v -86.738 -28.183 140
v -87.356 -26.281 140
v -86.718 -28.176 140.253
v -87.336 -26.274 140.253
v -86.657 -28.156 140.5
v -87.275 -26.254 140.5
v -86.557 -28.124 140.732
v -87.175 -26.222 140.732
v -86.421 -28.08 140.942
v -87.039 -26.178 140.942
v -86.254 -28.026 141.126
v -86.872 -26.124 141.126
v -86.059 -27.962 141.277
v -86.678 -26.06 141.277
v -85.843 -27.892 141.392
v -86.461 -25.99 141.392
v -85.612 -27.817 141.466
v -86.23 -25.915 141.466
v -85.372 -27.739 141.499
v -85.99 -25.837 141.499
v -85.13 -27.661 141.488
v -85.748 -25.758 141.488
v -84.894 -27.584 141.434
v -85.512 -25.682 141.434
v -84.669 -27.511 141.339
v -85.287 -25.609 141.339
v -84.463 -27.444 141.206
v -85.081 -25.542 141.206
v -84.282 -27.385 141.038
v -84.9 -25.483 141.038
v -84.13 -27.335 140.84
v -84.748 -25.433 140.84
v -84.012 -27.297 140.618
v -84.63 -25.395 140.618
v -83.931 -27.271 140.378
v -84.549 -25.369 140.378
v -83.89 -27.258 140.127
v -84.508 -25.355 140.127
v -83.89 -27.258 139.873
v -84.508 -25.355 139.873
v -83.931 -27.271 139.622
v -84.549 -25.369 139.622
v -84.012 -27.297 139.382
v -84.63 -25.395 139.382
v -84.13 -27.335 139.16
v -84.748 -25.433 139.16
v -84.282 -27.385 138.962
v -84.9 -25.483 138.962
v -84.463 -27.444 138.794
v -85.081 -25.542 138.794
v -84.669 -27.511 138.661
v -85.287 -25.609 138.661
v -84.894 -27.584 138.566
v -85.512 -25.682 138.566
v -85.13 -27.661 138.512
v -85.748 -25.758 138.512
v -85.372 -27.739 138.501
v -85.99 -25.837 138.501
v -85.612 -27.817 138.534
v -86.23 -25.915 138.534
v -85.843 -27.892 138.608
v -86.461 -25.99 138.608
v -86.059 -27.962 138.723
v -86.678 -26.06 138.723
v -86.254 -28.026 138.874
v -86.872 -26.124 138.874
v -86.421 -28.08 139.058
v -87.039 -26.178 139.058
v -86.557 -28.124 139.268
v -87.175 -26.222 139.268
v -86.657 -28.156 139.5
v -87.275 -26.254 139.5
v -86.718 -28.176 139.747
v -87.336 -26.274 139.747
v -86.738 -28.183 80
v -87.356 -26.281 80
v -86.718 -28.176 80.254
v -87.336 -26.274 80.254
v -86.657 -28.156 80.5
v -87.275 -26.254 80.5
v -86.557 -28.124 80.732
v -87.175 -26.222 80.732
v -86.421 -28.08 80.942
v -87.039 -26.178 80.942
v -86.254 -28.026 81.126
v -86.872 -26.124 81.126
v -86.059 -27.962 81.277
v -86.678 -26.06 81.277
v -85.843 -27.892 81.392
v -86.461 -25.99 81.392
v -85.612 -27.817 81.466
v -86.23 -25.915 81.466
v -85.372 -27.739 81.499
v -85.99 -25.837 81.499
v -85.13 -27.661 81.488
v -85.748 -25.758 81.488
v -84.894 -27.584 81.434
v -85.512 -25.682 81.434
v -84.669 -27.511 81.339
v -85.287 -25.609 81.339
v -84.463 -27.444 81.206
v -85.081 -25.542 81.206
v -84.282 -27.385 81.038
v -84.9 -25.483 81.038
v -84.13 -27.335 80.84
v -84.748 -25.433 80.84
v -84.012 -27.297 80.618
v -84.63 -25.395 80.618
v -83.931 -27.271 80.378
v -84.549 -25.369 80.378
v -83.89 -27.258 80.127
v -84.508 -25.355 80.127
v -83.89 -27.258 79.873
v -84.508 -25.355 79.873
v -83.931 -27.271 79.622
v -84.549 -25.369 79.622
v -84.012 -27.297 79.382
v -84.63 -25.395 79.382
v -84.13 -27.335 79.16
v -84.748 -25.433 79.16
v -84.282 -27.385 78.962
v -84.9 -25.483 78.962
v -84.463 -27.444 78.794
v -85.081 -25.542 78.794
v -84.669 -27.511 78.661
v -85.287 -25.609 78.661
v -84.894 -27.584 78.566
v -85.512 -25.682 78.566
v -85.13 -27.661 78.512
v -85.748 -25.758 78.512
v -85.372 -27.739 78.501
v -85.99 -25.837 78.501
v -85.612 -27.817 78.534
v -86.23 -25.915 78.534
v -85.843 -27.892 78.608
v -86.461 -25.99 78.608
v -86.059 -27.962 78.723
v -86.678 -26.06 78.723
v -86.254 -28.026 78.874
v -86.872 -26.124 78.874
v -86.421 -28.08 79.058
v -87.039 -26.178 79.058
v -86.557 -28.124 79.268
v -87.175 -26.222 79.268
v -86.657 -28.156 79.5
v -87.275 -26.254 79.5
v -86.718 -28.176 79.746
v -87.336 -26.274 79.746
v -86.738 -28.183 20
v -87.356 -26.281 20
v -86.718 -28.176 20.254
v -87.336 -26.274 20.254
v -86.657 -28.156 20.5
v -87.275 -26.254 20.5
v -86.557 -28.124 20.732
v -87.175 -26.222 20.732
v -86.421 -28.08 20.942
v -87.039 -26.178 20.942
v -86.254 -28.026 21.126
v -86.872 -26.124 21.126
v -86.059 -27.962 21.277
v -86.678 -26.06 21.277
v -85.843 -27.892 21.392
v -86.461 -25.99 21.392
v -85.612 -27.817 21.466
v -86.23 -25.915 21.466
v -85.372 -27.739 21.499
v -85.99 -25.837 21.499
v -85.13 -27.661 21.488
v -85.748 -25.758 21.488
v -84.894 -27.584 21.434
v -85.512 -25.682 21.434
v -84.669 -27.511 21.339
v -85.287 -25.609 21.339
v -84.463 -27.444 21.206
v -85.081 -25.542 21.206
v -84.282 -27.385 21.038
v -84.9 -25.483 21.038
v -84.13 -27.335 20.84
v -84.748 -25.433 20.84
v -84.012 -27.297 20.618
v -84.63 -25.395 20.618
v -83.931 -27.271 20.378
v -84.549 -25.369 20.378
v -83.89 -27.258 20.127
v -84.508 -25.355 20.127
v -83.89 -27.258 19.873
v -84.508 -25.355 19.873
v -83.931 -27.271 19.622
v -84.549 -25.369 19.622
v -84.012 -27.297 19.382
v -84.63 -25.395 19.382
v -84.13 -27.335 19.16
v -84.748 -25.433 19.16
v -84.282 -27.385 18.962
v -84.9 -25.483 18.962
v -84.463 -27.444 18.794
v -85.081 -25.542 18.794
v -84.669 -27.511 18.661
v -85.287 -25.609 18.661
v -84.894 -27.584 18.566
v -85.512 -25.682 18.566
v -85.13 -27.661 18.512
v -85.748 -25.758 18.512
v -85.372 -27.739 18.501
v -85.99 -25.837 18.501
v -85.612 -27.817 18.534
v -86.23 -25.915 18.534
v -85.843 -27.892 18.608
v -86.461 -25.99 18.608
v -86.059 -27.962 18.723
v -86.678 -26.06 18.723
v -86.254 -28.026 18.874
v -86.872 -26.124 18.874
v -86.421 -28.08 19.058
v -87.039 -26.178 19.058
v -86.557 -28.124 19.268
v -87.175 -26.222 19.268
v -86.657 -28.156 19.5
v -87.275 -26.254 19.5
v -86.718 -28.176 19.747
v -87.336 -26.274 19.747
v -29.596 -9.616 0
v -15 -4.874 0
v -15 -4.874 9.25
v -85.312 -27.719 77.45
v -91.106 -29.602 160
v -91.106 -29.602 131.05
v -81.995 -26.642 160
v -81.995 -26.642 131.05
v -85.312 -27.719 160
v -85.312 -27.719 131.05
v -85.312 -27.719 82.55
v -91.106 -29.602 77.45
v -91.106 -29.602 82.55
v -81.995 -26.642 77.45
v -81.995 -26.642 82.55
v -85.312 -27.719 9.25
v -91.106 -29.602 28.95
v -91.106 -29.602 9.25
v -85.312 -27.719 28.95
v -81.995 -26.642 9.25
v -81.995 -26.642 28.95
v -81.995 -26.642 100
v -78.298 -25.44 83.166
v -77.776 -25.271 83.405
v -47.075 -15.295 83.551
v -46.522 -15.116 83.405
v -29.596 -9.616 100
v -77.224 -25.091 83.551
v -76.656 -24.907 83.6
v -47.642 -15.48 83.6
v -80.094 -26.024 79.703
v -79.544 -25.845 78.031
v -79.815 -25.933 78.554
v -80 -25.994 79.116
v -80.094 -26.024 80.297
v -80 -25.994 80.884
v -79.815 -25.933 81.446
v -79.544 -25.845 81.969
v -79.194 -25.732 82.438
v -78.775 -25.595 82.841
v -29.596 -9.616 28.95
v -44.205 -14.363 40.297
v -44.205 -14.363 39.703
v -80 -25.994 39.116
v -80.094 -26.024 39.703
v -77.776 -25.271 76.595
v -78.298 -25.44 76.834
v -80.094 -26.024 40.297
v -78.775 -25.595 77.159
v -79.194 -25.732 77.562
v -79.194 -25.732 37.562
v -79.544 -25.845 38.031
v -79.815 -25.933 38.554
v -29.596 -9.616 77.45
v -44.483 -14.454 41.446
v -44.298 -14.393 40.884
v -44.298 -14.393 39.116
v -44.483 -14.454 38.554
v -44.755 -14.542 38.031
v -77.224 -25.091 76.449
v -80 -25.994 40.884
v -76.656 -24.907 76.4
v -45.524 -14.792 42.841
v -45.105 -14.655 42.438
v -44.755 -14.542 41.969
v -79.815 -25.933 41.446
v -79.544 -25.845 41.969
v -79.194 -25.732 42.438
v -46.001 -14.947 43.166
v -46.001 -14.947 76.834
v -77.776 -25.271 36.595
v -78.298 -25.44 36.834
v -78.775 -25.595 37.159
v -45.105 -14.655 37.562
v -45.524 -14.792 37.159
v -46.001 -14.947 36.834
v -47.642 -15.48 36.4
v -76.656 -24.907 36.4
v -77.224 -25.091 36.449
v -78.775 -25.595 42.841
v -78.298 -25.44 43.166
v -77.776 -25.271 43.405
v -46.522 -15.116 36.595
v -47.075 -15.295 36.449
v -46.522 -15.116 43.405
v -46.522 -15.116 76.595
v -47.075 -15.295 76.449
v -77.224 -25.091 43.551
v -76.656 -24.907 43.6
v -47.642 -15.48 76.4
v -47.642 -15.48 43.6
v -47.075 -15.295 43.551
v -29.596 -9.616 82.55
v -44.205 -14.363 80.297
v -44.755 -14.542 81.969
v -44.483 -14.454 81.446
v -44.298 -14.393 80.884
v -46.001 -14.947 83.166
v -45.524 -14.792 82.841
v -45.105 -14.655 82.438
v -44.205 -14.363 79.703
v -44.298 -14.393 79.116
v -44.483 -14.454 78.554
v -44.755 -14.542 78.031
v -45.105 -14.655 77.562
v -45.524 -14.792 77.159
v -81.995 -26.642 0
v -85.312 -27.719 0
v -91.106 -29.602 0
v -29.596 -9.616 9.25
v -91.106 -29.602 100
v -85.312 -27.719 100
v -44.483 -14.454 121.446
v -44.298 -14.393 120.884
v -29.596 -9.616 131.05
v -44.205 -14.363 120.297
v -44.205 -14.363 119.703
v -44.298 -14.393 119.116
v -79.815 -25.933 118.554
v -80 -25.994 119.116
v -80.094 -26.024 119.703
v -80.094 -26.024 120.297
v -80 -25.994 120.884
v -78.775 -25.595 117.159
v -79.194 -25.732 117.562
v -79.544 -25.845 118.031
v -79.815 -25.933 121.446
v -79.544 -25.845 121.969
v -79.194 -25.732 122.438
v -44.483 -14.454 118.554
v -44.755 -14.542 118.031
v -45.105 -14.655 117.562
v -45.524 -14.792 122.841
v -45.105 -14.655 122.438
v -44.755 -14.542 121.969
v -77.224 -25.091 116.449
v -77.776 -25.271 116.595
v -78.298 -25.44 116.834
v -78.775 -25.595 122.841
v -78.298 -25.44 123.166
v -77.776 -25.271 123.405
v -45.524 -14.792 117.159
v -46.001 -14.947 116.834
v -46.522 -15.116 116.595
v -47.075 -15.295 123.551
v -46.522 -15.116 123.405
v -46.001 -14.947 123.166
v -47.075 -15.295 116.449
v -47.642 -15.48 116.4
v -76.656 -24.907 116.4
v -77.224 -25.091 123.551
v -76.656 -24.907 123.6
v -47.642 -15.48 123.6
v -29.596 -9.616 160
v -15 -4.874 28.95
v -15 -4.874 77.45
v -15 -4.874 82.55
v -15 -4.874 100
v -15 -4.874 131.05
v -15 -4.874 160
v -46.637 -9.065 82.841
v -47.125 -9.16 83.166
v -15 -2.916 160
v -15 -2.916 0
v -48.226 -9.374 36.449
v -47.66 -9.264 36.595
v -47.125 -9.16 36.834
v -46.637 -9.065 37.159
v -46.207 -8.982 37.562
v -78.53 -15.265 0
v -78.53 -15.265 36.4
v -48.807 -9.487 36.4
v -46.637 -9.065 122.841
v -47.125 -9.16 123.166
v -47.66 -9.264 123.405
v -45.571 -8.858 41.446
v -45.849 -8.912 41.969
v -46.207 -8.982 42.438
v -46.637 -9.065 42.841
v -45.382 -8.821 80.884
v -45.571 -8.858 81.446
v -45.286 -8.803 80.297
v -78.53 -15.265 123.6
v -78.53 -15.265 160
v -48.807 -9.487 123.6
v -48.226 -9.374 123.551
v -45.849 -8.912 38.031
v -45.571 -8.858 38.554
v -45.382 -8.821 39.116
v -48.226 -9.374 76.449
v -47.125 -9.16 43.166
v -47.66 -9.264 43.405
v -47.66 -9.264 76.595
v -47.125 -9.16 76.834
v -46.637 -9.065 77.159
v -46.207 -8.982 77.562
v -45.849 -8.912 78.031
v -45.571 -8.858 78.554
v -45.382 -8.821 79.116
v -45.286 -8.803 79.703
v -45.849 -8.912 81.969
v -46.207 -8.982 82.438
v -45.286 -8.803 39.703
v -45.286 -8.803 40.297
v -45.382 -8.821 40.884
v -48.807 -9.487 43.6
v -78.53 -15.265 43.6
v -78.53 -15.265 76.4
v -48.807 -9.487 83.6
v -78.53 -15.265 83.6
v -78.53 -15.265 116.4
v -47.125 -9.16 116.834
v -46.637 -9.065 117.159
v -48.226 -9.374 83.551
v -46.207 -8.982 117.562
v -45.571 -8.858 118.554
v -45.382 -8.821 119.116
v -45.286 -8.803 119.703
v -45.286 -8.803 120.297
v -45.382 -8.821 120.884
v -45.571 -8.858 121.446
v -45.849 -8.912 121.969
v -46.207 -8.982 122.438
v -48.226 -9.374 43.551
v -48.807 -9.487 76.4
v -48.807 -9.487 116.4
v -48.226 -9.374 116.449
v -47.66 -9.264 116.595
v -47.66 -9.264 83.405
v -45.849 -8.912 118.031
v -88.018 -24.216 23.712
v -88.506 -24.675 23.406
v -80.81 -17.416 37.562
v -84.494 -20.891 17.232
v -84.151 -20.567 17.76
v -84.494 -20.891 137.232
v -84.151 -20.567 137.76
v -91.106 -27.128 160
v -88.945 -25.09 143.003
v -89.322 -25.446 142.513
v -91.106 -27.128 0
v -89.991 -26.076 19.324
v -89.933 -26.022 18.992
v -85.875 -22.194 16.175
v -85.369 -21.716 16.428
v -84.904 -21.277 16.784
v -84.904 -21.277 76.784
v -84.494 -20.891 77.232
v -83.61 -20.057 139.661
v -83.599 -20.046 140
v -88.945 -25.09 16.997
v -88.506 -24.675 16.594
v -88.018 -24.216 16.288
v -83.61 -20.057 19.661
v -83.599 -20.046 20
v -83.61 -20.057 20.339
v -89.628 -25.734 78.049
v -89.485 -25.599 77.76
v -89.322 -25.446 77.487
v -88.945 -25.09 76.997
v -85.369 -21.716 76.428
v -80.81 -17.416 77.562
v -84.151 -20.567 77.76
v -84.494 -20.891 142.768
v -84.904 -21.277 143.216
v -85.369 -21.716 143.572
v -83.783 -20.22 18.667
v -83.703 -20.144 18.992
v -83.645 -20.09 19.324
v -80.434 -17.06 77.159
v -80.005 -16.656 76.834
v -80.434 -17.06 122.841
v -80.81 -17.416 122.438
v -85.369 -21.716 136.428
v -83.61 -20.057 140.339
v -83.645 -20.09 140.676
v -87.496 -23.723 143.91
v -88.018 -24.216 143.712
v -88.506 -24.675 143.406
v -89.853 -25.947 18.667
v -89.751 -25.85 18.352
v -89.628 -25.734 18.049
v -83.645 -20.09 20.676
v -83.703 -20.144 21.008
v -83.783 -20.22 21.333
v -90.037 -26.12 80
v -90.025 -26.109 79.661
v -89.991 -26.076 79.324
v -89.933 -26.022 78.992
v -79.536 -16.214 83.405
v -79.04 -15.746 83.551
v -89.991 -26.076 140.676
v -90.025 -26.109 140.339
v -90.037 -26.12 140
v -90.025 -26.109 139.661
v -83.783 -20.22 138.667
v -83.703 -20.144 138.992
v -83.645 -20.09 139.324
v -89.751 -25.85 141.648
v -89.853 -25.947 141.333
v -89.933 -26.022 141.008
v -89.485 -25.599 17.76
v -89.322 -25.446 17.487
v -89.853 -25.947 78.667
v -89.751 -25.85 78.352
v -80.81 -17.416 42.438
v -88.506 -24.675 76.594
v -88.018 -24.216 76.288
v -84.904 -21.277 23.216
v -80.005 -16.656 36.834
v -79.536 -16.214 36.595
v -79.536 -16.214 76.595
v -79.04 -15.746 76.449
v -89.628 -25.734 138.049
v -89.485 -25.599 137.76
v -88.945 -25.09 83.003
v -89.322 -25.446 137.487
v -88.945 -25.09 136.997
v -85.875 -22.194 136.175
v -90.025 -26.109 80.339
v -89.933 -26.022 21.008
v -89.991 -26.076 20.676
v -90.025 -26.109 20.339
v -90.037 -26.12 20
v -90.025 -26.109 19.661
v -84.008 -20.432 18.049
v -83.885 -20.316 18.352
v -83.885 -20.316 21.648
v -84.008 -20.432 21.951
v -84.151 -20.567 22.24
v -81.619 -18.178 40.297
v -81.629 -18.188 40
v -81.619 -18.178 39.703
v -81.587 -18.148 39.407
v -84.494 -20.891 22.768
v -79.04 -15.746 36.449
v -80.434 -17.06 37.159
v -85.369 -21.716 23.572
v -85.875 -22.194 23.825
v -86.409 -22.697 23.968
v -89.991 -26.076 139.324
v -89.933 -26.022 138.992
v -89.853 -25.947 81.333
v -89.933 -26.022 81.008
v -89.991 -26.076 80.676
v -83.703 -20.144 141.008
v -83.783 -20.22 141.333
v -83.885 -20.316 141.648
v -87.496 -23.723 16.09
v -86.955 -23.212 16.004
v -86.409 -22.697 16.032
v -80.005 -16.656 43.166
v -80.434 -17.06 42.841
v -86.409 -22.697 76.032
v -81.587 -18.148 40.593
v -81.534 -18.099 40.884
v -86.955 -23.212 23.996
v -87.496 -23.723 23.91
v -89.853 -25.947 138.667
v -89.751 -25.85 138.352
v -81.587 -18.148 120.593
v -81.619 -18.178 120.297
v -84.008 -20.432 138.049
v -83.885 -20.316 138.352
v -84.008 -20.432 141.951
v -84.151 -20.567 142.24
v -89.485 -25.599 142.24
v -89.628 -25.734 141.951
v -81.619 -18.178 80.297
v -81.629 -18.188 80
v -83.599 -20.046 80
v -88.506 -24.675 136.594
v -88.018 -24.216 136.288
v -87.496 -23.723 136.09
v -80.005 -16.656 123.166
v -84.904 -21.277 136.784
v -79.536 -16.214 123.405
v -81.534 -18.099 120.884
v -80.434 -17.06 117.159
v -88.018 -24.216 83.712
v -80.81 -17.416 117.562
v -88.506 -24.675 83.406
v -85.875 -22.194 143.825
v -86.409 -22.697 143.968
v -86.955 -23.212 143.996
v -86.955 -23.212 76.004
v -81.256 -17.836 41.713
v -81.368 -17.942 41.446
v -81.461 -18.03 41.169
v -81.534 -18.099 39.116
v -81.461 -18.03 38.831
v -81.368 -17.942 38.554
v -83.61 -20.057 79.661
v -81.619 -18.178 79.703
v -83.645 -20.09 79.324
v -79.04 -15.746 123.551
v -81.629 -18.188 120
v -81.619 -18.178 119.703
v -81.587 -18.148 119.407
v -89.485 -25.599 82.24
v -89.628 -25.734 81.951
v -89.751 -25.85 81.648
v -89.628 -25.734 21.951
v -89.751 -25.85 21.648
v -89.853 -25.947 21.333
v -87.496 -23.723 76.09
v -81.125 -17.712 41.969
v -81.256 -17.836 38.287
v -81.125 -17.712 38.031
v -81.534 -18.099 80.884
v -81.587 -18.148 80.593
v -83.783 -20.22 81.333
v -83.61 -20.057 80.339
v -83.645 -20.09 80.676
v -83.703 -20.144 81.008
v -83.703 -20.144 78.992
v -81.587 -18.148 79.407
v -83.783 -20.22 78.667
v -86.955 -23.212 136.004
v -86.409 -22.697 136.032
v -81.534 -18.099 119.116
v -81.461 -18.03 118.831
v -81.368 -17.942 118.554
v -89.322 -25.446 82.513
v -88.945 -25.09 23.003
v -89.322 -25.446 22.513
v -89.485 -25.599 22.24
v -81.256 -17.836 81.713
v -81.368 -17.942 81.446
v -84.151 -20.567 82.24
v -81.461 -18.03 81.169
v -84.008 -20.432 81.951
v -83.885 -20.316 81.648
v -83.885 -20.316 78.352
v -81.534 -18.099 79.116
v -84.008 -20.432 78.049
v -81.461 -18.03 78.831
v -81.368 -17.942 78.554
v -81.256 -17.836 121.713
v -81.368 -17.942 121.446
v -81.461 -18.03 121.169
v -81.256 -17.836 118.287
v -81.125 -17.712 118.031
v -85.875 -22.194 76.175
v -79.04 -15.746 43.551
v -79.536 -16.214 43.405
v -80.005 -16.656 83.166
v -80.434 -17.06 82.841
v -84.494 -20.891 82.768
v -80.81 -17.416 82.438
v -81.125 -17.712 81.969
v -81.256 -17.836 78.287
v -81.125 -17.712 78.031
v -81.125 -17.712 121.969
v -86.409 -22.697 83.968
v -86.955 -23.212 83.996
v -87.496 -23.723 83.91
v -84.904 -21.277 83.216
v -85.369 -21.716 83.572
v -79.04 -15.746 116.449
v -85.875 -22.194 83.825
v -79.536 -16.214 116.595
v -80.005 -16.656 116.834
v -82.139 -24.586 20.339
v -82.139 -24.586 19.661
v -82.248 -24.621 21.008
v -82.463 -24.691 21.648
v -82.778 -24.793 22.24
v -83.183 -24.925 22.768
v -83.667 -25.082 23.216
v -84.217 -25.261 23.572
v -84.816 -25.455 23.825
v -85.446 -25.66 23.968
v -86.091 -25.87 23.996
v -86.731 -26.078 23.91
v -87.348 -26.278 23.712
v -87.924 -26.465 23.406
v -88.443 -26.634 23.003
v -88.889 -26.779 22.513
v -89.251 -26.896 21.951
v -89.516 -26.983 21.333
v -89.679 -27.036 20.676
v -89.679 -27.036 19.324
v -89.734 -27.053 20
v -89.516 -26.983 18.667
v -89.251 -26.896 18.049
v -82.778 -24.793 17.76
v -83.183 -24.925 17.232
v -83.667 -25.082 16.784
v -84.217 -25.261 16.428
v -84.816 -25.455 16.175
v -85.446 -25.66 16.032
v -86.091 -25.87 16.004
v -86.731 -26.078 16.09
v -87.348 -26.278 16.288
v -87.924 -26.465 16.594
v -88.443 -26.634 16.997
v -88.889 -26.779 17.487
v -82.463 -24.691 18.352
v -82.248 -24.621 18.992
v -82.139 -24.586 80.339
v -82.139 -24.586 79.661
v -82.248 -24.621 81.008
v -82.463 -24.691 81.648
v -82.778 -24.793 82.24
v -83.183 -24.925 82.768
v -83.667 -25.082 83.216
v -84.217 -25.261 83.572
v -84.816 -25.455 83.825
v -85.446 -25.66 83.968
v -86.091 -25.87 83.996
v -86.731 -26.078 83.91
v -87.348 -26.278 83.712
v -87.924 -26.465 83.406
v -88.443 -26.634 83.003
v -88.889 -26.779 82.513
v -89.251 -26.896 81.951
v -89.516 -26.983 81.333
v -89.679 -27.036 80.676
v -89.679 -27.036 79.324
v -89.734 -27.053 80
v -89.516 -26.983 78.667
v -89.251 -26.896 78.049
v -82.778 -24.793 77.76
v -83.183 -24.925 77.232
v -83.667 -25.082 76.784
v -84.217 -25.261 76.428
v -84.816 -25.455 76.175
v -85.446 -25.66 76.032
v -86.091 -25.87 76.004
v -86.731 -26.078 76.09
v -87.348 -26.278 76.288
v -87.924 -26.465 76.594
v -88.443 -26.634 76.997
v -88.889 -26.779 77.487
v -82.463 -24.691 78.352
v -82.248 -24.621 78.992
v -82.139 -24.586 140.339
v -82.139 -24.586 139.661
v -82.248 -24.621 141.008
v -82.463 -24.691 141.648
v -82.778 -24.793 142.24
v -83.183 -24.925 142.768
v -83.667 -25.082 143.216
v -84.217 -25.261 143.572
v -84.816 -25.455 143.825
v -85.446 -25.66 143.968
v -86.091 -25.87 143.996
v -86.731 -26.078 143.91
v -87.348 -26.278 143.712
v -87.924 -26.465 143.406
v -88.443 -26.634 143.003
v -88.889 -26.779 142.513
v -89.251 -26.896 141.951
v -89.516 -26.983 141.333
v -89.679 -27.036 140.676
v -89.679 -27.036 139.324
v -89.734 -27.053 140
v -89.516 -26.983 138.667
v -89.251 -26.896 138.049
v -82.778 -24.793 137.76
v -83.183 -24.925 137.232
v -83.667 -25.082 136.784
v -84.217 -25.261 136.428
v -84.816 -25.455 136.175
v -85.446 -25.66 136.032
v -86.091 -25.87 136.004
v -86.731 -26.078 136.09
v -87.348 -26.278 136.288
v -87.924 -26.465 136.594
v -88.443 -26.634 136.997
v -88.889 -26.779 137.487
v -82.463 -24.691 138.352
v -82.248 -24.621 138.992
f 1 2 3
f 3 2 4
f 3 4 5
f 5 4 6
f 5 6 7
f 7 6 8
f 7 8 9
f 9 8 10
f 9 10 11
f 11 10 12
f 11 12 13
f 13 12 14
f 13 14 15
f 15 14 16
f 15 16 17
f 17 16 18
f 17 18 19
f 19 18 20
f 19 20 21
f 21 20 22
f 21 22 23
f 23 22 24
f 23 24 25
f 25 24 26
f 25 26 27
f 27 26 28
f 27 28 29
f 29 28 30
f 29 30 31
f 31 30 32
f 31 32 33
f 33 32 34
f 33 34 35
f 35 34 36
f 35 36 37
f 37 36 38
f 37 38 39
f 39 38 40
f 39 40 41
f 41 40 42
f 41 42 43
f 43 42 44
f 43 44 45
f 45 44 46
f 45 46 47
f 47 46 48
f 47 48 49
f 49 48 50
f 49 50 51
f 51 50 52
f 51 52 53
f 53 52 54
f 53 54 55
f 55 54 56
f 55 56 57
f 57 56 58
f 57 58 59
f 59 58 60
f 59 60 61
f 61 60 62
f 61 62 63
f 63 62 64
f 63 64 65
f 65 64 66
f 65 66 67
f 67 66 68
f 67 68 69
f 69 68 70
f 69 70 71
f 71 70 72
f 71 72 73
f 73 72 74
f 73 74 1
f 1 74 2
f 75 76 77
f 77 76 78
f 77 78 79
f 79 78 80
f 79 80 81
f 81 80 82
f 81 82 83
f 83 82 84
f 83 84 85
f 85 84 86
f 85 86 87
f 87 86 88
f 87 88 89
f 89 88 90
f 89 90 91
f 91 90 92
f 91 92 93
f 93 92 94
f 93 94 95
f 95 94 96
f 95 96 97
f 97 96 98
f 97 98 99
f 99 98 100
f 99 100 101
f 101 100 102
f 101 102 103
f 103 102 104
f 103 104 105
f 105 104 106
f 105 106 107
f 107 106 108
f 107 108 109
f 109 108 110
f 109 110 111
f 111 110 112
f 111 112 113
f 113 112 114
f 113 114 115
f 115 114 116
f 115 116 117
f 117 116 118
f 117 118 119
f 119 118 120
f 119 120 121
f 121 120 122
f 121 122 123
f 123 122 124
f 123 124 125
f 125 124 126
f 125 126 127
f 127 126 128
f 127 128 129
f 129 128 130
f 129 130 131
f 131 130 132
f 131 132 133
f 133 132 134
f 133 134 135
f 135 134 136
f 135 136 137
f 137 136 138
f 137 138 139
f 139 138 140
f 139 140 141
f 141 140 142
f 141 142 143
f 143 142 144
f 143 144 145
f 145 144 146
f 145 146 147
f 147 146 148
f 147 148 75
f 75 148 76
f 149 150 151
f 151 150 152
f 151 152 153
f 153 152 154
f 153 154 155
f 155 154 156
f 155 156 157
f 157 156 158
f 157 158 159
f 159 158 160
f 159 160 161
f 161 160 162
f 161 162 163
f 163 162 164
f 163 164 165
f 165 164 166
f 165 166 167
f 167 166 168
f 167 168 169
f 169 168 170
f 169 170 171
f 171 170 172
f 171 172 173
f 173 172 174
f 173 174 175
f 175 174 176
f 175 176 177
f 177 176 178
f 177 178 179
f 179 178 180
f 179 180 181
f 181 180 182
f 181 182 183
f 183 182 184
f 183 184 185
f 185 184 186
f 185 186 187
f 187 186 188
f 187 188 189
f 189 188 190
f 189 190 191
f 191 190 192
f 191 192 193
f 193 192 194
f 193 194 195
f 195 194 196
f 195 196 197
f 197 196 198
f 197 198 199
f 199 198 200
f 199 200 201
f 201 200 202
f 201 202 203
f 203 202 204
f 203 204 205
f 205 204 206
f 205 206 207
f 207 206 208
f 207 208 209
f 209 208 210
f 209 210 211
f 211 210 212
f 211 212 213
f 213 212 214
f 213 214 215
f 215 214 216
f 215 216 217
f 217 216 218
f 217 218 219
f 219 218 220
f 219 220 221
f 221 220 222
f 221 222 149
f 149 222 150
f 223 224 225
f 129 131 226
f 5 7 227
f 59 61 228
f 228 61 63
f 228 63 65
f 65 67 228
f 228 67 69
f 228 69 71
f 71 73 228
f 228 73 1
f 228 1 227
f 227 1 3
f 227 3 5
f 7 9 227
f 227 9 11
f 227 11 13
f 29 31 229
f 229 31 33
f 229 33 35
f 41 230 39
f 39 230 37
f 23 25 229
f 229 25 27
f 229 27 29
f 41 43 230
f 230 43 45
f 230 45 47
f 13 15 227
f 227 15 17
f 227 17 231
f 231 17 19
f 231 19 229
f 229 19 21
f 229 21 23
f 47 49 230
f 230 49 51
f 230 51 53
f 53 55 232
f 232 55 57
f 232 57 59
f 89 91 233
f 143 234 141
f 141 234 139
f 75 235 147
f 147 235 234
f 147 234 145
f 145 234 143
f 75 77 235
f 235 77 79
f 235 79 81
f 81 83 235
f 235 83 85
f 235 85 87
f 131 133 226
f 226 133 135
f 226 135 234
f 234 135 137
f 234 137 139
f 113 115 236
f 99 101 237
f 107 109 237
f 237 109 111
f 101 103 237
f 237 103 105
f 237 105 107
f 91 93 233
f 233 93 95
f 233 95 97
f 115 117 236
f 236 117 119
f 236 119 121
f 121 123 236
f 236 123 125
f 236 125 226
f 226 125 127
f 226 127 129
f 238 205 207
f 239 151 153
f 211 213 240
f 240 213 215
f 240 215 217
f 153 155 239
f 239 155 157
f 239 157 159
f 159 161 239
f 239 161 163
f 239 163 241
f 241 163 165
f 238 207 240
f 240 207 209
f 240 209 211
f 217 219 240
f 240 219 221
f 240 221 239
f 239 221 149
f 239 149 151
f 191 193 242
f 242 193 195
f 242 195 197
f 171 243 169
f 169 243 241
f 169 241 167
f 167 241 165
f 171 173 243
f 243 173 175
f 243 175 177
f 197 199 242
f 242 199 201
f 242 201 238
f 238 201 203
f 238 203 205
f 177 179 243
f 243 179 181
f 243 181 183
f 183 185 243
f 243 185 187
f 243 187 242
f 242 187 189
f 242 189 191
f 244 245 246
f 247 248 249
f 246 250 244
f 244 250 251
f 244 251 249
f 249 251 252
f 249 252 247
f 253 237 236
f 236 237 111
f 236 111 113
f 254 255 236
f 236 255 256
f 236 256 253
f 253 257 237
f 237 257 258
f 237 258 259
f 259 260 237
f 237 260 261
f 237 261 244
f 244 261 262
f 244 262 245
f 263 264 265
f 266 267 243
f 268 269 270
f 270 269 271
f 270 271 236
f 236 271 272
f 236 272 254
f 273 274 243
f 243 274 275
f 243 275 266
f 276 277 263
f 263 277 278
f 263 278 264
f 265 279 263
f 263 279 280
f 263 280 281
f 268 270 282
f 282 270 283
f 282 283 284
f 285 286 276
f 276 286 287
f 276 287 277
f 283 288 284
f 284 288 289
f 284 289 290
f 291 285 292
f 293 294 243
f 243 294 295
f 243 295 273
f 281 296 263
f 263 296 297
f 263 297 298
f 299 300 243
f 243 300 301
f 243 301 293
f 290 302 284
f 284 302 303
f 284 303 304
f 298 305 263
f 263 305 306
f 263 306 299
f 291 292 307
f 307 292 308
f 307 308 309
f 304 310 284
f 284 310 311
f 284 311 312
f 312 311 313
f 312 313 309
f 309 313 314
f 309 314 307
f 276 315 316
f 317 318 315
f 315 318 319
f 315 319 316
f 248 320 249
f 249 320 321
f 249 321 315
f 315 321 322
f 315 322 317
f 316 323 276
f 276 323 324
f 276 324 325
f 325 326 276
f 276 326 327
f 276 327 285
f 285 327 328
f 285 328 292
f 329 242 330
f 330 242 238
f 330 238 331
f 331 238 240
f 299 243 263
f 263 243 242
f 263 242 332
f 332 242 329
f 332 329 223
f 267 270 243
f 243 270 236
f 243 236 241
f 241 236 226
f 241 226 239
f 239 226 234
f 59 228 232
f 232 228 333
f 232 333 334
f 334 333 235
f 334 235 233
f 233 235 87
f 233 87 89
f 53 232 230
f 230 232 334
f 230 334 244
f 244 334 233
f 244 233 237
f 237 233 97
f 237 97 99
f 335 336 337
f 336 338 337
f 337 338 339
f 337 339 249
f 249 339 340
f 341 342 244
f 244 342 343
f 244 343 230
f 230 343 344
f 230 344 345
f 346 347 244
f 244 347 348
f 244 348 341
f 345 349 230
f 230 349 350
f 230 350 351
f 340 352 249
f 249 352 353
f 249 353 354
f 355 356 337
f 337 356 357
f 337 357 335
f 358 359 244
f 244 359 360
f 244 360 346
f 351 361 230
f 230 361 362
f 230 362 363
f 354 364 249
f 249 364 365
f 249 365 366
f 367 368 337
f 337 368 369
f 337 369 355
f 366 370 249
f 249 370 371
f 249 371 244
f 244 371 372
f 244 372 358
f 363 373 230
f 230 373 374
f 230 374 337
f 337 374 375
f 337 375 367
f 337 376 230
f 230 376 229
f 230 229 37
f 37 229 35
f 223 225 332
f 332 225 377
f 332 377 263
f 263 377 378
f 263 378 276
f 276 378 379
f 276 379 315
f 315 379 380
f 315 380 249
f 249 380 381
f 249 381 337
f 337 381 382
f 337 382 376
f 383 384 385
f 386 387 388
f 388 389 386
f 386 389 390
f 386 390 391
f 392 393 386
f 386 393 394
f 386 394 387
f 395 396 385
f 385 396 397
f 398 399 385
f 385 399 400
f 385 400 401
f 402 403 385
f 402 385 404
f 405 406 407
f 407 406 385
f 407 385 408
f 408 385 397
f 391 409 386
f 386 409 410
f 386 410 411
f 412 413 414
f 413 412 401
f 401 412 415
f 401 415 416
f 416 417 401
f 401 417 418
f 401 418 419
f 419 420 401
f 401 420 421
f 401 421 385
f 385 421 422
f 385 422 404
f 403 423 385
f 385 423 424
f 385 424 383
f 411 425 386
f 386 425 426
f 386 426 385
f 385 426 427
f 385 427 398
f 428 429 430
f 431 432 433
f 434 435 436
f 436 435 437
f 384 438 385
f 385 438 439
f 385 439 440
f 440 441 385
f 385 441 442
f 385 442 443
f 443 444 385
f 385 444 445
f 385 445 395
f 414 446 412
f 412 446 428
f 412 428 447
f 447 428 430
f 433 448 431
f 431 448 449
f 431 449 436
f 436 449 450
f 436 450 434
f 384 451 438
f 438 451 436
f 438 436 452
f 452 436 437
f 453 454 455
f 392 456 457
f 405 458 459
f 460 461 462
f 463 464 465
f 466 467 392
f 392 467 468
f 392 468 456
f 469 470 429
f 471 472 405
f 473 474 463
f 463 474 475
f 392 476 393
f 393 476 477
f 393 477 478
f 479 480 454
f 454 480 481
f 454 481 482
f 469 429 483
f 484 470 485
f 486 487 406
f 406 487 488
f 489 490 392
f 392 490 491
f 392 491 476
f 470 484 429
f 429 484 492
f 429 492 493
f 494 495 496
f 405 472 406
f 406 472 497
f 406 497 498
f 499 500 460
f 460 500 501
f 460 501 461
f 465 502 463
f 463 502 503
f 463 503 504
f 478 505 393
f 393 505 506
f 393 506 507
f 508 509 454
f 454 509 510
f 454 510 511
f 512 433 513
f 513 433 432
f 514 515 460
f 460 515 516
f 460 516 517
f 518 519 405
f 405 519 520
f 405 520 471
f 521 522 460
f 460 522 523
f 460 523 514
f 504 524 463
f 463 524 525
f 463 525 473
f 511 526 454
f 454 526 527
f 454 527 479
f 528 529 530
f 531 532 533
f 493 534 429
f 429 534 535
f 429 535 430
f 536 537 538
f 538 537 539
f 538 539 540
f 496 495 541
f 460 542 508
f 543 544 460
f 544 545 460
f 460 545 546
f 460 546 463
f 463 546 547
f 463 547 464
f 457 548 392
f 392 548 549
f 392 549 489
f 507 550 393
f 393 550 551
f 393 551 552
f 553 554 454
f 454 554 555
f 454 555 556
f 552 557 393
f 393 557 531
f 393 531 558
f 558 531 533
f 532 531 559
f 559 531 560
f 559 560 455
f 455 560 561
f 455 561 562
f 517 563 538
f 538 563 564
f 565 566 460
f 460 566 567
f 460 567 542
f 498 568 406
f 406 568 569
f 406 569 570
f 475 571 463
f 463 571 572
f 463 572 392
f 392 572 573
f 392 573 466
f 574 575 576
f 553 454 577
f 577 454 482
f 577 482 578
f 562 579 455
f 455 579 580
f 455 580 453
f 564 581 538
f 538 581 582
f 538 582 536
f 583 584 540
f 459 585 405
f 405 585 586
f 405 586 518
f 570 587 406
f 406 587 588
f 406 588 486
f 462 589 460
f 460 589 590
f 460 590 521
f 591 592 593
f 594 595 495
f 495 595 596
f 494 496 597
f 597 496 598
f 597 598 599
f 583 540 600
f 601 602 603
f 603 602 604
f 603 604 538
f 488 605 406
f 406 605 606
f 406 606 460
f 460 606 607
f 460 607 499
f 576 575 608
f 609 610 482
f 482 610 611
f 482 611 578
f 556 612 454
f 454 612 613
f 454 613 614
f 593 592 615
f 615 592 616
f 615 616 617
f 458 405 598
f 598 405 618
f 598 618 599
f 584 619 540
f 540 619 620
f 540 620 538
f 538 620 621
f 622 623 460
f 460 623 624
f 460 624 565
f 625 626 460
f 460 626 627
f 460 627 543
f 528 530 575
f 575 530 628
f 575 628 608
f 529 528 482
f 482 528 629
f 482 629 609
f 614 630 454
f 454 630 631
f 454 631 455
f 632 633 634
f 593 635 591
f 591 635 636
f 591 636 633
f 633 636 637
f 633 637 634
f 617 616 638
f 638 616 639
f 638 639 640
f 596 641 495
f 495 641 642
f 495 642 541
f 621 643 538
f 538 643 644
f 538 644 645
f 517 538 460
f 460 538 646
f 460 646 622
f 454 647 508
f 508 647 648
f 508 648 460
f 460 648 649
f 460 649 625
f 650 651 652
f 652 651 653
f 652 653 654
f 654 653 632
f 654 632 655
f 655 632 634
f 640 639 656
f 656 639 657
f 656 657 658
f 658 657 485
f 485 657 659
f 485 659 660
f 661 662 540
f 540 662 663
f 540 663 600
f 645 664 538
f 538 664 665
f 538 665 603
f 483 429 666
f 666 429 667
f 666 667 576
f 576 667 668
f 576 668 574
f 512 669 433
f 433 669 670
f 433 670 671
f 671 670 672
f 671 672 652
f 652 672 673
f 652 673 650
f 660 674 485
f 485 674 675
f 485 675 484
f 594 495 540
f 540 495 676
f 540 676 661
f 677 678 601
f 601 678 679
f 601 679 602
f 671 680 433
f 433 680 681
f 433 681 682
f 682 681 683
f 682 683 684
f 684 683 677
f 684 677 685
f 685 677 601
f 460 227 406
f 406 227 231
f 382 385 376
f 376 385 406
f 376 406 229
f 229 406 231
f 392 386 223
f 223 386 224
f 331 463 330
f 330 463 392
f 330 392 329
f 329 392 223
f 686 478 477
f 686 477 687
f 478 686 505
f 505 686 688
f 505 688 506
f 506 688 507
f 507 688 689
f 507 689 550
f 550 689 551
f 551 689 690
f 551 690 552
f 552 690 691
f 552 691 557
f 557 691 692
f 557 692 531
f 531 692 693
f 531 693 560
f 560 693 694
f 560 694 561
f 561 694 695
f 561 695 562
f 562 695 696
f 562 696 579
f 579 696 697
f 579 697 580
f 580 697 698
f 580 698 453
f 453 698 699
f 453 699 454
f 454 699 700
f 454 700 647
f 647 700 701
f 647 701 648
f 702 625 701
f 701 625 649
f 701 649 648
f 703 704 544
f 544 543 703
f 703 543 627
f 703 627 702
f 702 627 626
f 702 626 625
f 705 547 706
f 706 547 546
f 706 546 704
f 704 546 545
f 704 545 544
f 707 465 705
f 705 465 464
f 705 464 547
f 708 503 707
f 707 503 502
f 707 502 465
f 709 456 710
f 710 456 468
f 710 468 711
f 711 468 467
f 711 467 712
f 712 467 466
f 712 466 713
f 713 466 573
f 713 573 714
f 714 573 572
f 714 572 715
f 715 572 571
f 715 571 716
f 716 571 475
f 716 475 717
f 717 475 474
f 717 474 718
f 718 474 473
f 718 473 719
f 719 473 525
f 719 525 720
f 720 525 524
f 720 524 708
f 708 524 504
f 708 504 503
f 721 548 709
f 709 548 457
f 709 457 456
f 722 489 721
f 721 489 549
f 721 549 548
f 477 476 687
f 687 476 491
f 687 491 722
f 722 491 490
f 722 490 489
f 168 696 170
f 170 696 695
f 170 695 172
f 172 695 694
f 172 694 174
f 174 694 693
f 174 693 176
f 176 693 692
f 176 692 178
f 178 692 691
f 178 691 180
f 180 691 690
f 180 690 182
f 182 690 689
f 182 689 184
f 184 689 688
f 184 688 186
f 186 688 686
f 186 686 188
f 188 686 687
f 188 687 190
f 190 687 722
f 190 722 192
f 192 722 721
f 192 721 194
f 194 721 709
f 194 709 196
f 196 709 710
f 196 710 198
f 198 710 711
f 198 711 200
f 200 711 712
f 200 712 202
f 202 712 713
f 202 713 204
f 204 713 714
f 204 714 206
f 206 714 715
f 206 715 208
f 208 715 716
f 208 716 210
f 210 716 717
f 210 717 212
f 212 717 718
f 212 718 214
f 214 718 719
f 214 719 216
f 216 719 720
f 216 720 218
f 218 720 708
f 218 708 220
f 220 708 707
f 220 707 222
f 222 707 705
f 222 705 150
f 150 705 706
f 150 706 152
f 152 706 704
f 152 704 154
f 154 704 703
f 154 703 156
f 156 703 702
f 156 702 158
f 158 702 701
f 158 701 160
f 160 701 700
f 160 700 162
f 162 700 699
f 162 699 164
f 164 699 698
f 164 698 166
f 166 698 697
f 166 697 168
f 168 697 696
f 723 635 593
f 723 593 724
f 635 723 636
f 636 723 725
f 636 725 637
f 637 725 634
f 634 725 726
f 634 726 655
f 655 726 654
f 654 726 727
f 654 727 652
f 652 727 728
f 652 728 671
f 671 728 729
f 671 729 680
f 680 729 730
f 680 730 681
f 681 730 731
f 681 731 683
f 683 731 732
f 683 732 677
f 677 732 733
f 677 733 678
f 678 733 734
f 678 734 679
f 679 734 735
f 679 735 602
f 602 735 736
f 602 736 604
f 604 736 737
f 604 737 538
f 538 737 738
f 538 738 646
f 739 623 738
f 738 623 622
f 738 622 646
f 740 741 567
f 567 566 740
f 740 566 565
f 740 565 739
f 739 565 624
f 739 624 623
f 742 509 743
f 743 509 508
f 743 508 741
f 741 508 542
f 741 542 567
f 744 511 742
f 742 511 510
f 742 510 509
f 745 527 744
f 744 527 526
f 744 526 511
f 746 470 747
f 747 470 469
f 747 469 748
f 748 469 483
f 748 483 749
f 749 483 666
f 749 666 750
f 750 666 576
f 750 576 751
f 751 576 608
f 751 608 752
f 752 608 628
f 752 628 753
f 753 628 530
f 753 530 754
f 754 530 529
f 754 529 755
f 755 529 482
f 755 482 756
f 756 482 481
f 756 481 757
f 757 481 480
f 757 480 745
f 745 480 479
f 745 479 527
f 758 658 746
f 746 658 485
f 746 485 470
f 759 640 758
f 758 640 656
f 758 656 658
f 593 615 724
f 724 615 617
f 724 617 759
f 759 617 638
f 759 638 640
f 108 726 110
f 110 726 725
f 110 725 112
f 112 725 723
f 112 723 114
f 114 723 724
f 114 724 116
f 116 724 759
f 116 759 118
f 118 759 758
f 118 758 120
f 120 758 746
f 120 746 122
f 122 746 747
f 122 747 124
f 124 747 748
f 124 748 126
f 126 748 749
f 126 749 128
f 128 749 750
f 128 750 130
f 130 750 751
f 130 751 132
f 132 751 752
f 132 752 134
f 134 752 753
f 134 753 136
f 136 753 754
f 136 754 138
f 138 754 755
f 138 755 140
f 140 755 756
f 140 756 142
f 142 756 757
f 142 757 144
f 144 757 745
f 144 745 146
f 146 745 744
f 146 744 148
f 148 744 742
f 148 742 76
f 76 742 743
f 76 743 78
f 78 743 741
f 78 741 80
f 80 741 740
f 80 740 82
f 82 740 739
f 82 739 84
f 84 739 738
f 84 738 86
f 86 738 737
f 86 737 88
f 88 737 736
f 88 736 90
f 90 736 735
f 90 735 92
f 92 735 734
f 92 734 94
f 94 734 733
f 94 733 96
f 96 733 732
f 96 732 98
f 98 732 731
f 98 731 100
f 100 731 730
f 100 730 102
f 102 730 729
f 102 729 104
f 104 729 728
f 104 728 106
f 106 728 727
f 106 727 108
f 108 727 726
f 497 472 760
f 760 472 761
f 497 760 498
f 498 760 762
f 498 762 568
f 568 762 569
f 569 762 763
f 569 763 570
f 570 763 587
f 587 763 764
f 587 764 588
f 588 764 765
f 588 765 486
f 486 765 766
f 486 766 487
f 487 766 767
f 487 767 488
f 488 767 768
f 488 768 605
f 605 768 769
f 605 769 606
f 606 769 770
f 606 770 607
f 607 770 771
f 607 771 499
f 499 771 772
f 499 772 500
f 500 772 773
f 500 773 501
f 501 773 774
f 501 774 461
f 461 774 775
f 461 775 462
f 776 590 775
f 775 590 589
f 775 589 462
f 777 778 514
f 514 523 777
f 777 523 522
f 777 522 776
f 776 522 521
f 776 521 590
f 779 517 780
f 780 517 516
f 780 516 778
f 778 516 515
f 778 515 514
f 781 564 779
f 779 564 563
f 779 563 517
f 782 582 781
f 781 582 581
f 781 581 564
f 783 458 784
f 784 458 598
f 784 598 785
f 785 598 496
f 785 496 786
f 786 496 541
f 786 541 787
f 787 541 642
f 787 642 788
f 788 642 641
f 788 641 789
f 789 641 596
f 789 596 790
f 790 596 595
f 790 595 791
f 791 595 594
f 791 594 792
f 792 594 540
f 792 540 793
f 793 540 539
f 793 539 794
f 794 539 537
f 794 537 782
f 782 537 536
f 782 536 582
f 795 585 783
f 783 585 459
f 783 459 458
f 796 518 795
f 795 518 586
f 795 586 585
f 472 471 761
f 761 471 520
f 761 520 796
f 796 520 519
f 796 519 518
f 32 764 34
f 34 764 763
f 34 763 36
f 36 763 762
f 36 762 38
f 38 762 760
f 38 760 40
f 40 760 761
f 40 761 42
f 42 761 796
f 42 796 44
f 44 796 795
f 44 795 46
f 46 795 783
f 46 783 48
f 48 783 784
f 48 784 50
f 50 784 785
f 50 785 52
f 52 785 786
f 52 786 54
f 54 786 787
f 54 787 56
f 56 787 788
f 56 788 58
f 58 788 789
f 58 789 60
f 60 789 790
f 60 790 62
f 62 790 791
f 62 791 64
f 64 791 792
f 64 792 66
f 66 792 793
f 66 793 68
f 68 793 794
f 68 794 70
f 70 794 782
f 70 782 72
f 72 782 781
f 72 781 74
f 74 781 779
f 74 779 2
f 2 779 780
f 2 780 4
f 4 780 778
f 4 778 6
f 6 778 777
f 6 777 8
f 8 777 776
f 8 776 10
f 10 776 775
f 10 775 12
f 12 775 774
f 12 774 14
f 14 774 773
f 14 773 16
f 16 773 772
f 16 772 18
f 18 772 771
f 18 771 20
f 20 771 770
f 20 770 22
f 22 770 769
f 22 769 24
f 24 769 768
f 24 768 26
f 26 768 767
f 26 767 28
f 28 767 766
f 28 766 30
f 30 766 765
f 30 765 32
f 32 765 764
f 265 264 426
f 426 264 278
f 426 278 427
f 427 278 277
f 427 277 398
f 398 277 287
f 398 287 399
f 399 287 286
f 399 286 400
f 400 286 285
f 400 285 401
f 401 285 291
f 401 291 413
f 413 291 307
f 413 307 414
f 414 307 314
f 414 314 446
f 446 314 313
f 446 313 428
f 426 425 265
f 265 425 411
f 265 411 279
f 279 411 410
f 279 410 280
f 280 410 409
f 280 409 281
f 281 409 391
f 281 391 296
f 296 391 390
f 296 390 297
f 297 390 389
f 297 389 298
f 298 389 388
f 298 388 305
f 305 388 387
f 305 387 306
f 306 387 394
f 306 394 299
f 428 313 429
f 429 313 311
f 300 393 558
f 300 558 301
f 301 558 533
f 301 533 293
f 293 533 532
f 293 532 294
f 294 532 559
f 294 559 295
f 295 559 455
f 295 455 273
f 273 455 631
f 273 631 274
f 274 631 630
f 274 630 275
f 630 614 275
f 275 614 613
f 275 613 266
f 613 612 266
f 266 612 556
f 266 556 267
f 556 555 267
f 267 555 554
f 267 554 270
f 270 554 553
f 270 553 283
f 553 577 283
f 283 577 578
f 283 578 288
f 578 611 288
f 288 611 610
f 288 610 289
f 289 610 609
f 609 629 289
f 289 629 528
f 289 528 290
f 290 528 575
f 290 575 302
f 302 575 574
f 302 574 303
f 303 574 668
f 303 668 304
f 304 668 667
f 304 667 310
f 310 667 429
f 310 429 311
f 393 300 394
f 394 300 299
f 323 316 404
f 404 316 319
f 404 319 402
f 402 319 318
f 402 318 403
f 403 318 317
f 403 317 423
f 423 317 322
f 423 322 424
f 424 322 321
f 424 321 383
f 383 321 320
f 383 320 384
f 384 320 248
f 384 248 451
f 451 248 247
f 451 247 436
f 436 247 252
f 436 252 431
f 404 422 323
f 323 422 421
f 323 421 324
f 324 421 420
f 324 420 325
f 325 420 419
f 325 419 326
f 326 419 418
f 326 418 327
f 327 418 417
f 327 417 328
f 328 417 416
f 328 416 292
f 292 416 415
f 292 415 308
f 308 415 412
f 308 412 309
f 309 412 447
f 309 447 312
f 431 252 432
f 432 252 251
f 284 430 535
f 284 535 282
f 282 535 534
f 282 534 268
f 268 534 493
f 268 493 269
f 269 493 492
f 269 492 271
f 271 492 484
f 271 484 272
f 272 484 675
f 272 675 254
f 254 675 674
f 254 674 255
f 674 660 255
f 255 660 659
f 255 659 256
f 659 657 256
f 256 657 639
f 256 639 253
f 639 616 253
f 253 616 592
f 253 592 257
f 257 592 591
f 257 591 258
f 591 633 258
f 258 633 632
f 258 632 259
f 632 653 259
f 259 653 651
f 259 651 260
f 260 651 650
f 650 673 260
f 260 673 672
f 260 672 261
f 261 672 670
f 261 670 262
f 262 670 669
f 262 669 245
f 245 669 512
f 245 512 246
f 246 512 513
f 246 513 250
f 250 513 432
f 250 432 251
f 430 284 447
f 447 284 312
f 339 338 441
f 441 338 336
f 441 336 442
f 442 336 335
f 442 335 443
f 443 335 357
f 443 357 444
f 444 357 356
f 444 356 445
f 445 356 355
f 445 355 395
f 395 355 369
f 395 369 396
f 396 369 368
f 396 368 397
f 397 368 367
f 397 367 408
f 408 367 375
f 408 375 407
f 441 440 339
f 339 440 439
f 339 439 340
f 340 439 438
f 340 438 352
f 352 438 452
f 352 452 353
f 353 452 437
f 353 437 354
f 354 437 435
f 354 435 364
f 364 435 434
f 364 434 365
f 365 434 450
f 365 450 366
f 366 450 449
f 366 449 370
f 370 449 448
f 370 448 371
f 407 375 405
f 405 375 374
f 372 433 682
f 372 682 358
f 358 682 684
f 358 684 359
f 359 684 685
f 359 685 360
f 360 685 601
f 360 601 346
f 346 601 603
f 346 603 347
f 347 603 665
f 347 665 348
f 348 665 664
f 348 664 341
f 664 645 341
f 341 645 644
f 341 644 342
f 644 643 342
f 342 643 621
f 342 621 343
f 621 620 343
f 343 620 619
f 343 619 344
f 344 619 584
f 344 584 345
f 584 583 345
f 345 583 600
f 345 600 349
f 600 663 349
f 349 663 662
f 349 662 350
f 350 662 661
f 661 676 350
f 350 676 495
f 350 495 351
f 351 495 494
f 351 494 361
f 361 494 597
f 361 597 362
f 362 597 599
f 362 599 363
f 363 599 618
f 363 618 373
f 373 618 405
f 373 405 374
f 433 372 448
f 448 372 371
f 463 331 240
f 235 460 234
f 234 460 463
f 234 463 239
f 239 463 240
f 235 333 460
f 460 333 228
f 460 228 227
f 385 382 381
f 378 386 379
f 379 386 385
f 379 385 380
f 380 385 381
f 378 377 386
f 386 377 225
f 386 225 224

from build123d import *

# Parameters (mm, degrees)
BOSS_EXTRUDE1_DEPTH     = 160
SKETCH3_R               = 1.5
CUT_EXTRUDE1_DEPTH      = 40.389262615
SKETCH4_R               = 4
CUT_EXTRUDE2_DEPTH      = 8
CUT_EXTRUDE3_DEPTH      = 19.147013842
CUT_EXTRUDE3_DEPTH_BACK = 31.333948183
SKETCH6_W               = 4
SKETCH6_H               = 14.600219614
CUT_EXTRUDE4_DEPTH      = 1
CUT_EXTRUDE4_DEPTH_BACK = 161


with BuildPart() as part:
    # Sketch1 → Boss-Extrude1 (new body)
    with BuildSketch(Plane.XY):
        Polygon((0, 0), (-78.530174676, -15.26471963), (-95.10565163, -30.901699437), align=None)
    extrude(amount=BOSS_EXTRUDE1_DEPTH)

    # Sketch3 → Cut-Extrude1 (cut, through all)
    with BuildSketch(Plane(origin=(-3.090169944, 9.510565163, 0), x_dir=(0.951056516, 0.309016994, 0), z_dir=(-0.309016994, 0.951056516, 0))):
        with Locations((-89.701846066, -20)):
            Circle(SKETCH3_R)
        with Locations((-89.701846066, -80)):
            Circle(SKETCH3_R)
        with Locations((-89.701846066, -140)):
            Circle(SKETCH3_R)
    extrude(amount=-CUT_EXTRUDE1_DEPTH, mode=Mode.SUBTRACT)

    # Sketch4 → Cut-Extrude2 (cut)
    with BuildSketch(Plane(origin=(-3.090169944, 9.510565163, 0), x_dir=(0.951056516, 0.309016994, 0), z_dir=(-0.309016994, 0.951056516, 0))):
        with Locations((-89.701846066, -20)):
            Circle(SKETCH4_R)
        with Locations((-89.701846066, -80)):
            Circle(SKETCH4_R)
        with Locations((-89.701846066, -140)):
            Circle(SKETCH4_R)
    extrude(amount=-CUT_EXTRUDE2_DEPTH, mode=Mode.SUBTRACT)

    # Sketch5 → Cut-Extrude3 (cut, two sides)
    with BuildSketch(Plane(origin=(-0.600388906, -0.116703781, 0), x_dir=(0.981627183, 0.190808995, 0), z_dir=(-0.190808995, 0.981627183, 0))) as cut_extrude3_sk:
        with BuildLine():
            Line((-49.109208006, -123.6), (-79.388373798, -123.6))
            ThreePointArc((-79.388373798, -123.6), (-82.988373798, -120), (-79.388373798, -116.4))
            Line((-79.388373798, -116.4), (-49.109208006, -116.4))
            ThreePointArc((-49.109208006, -116.4), (-45.509208006, -120), (-49.109208006, -123.6))
        make_face()
        with BuildLine():
            Line((-49.109208006, -83.6), (-79.388373798, -83.6))
            ThreePointArc((-79.388373798, -83.6), (-82.988373798, -80), (-79.388373798, -76.4))
            Line((-79.388373798, -76.4), (-49.109208006, -76.4))
            ThreePointArc((-49.109208006, -76.4), (-45.509208006, -80), (-49.109208006, -83.6))
        make_face()
        with BuildLine():
            Line((-49.109208006, -43.6), (-79.388373798, -43.6))
            ThreePointArc((-79.388373798, -43.6), (-82.988373798, -40), (-79.388373798, -36.4))
            Line((-79.388373798, -36.4), (-49.109208006, -36.4))
            ThreePointArc((-49.109208006, -36.4), (-45.509208006, -40), (-49.109208006, -43.6))
        make_face()
    extrude(amount=CUT_EXTRUDE3_DEPTH, mode=Mode.SUBTRACT)
    extrude(cut_extrude3_sk.sketch, amount=-CUT_EXTRUDE3_DEPTH_BACK, mode=Mode.SUBTRACT)

    # Sketch6 → Cut-Extrude4 (cut, two sides)
    with BuildSketch(Plane.XY.offset(160)) as cut_extrude4_sk:
        Polygon((-15, 4.492478665), (-15, -6.969839796), (0, -6.969839796), (0, 6.969839796), align=None)
        with Locations((-93.10565163, -29.084878329)):
            Rectangle(SKETCH6_W, SKETCH6_H)
    extrude(amount=CUT_EXTRUDE4_DEPTH, mode=Mode.SUBTRACT)
    extrude(cut_extrude4_sk.sketch, amount=-CUT_EXTRUDE4_DEPTH_BACK, mode=Mode.SUBTRACT)


solid = part.part
